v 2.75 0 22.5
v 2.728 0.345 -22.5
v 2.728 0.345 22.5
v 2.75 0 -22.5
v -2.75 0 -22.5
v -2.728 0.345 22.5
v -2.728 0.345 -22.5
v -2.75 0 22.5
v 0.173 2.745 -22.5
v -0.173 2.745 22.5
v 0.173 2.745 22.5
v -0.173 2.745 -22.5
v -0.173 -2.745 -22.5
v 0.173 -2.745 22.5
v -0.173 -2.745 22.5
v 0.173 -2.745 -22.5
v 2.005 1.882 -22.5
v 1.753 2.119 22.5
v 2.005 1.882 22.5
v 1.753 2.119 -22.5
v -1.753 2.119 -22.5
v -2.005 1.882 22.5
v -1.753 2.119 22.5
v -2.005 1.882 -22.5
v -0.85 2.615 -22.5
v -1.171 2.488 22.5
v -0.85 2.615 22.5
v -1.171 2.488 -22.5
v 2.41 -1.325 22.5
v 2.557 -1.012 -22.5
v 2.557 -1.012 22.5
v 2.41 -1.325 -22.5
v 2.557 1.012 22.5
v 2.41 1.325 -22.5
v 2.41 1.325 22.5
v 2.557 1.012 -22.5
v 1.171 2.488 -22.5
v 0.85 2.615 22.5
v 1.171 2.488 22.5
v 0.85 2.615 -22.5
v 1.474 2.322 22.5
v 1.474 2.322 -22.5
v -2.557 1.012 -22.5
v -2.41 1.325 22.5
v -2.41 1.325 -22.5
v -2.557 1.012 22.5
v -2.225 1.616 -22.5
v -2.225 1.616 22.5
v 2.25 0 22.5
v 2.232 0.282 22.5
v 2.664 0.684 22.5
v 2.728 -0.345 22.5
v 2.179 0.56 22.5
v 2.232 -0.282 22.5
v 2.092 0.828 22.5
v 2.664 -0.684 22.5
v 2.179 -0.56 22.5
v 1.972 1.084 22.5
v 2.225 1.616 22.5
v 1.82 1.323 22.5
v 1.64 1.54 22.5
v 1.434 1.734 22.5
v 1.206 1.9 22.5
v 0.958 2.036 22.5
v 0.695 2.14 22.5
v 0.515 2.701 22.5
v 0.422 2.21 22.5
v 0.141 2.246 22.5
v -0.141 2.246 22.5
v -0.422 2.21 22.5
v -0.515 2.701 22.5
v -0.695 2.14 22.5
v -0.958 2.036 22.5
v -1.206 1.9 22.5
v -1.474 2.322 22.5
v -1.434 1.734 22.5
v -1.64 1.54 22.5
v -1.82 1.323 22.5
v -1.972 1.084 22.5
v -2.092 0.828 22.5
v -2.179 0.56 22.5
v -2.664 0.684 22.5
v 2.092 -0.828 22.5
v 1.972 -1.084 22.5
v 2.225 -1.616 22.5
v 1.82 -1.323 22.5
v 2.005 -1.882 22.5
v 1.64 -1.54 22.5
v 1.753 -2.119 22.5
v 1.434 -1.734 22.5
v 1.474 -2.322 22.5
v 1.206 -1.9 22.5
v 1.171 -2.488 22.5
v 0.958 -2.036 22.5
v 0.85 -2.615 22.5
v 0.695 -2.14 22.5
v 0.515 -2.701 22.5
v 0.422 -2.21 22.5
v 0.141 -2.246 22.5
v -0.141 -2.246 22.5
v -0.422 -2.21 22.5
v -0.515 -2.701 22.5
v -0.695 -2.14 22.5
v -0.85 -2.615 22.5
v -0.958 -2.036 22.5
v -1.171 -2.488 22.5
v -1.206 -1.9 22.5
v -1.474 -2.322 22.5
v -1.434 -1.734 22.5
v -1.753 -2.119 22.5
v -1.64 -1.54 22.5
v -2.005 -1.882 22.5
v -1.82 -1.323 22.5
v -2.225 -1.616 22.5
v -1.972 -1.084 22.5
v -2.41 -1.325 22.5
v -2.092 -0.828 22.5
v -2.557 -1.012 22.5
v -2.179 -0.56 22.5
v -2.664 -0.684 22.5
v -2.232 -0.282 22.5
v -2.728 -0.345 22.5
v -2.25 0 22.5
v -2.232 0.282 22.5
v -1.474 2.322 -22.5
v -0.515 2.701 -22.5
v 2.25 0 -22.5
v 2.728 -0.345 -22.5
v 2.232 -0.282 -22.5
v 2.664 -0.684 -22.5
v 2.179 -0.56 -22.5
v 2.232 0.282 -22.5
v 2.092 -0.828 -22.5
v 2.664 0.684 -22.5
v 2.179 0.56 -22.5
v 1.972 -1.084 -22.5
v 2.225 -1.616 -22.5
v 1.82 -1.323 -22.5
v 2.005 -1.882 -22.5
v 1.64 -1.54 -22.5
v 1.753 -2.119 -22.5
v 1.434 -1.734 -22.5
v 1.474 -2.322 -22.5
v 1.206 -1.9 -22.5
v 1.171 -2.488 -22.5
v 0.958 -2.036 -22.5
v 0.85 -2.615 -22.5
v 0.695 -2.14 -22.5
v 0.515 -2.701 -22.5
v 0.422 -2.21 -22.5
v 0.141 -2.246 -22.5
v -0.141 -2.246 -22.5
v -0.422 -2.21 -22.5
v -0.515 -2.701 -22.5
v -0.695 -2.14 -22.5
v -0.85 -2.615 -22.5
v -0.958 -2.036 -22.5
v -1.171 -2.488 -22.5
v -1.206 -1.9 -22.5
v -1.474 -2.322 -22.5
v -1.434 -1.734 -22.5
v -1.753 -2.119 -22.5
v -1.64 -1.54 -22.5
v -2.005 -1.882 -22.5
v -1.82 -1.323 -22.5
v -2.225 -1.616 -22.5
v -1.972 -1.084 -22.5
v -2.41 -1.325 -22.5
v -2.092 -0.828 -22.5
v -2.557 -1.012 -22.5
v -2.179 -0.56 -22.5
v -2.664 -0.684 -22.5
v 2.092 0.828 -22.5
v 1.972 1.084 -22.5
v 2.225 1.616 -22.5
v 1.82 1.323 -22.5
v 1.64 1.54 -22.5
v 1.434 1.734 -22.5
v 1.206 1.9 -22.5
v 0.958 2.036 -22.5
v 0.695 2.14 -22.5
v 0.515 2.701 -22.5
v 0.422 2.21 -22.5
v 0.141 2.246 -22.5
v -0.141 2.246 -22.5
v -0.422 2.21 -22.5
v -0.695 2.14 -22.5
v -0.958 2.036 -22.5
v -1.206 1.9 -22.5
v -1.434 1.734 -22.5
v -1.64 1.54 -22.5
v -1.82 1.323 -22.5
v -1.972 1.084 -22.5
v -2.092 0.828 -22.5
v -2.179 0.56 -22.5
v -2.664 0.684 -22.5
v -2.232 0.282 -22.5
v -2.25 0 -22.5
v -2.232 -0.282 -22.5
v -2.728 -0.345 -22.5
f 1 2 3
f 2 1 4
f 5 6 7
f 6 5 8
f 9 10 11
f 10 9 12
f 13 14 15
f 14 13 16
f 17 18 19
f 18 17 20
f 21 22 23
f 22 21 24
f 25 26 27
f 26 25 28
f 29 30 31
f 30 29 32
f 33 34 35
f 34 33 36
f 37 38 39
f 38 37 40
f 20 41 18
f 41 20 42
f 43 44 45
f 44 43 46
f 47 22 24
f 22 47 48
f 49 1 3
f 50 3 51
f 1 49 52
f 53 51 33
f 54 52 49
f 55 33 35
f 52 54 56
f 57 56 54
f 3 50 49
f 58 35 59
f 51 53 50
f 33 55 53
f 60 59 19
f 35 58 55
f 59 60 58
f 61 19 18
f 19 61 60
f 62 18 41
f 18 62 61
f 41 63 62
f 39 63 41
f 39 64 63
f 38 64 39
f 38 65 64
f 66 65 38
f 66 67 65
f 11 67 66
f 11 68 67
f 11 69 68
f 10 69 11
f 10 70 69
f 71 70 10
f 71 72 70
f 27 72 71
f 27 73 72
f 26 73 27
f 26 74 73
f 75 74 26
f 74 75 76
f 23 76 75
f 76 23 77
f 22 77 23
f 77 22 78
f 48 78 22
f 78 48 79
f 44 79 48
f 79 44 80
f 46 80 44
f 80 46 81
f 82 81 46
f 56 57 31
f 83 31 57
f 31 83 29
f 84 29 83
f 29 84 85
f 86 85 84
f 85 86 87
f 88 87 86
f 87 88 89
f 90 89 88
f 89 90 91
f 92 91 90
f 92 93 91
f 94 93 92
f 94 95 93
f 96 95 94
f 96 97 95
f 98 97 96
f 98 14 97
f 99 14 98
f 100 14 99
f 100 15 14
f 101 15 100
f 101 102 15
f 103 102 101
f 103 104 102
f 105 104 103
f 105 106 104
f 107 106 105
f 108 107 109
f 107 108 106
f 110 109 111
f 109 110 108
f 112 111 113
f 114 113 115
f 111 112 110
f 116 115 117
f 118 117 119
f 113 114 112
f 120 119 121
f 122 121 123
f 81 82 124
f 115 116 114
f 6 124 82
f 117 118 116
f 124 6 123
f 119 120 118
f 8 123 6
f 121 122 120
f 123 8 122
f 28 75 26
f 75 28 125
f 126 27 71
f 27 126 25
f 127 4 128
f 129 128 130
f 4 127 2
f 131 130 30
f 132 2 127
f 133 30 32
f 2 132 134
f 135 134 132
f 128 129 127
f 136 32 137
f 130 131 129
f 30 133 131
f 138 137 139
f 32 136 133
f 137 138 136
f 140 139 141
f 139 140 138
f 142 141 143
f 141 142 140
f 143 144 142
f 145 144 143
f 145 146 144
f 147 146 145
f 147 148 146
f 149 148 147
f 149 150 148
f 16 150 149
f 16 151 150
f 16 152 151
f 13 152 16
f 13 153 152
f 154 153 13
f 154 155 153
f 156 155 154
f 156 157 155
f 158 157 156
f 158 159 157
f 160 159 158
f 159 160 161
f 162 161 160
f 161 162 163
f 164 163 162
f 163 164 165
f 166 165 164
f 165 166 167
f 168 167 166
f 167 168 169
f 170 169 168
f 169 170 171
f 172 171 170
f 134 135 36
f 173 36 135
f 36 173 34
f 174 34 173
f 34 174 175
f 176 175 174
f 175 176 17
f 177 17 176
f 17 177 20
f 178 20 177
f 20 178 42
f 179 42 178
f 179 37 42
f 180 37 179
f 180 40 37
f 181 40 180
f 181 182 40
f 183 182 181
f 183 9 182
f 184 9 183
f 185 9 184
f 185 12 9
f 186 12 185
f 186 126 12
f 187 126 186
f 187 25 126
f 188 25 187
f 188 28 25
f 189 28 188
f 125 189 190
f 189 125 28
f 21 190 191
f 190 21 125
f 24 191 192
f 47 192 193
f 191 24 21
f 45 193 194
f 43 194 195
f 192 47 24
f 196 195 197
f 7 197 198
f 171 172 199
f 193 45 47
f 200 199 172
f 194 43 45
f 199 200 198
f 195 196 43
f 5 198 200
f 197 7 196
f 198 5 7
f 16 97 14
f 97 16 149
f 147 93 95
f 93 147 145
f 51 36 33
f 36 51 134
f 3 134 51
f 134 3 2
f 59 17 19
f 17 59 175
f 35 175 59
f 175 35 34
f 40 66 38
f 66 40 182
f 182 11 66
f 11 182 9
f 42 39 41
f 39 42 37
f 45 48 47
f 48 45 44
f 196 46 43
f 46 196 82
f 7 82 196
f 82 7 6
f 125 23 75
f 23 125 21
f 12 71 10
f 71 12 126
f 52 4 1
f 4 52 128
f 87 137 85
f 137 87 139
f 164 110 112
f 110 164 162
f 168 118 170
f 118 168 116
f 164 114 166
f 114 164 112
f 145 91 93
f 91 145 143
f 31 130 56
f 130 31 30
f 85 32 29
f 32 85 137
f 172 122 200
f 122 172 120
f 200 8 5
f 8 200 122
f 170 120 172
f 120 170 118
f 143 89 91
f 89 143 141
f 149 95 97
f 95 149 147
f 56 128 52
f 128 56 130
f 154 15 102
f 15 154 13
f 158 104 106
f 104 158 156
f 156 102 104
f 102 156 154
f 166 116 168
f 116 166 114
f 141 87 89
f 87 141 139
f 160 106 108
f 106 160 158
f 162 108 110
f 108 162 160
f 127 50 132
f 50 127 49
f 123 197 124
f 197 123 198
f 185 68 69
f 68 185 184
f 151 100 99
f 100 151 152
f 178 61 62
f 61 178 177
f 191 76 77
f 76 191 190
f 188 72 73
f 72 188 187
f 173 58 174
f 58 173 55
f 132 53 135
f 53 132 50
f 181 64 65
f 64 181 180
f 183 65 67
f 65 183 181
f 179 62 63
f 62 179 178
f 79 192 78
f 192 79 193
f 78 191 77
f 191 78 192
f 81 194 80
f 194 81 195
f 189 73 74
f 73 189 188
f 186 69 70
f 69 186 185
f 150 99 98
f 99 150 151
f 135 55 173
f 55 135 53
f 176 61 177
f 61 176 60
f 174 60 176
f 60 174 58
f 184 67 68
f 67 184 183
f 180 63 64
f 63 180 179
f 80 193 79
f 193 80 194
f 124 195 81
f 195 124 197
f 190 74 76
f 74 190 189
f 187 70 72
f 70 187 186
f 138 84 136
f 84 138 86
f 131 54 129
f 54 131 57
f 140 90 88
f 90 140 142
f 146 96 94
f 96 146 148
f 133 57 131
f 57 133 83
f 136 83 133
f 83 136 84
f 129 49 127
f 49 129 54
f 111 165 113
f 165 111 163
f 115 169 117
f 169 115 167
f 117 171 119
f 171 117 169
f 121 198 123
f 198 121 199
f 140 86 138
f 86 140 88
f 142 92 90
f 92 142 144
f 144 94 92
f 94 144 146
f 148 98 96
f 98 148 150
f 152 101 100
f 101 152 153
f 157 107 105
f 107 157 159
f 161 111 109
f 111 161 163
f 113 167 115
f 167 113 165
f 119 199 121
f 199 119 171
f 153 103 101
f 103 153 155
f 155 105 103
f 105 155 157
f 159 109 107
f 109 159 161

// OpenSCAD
$fn = 50;


difference() {
	union() {
		translate(v = [0, 0, -22.5000000000]) {
			cylinder(h = 45, r = 2.7500000000);
		}
	}
	union() {
		translate(v = [0, 0, -100.0000000000]) {
			cylinder(h = 200, r = 2.2500000000);
		}
	}
}
